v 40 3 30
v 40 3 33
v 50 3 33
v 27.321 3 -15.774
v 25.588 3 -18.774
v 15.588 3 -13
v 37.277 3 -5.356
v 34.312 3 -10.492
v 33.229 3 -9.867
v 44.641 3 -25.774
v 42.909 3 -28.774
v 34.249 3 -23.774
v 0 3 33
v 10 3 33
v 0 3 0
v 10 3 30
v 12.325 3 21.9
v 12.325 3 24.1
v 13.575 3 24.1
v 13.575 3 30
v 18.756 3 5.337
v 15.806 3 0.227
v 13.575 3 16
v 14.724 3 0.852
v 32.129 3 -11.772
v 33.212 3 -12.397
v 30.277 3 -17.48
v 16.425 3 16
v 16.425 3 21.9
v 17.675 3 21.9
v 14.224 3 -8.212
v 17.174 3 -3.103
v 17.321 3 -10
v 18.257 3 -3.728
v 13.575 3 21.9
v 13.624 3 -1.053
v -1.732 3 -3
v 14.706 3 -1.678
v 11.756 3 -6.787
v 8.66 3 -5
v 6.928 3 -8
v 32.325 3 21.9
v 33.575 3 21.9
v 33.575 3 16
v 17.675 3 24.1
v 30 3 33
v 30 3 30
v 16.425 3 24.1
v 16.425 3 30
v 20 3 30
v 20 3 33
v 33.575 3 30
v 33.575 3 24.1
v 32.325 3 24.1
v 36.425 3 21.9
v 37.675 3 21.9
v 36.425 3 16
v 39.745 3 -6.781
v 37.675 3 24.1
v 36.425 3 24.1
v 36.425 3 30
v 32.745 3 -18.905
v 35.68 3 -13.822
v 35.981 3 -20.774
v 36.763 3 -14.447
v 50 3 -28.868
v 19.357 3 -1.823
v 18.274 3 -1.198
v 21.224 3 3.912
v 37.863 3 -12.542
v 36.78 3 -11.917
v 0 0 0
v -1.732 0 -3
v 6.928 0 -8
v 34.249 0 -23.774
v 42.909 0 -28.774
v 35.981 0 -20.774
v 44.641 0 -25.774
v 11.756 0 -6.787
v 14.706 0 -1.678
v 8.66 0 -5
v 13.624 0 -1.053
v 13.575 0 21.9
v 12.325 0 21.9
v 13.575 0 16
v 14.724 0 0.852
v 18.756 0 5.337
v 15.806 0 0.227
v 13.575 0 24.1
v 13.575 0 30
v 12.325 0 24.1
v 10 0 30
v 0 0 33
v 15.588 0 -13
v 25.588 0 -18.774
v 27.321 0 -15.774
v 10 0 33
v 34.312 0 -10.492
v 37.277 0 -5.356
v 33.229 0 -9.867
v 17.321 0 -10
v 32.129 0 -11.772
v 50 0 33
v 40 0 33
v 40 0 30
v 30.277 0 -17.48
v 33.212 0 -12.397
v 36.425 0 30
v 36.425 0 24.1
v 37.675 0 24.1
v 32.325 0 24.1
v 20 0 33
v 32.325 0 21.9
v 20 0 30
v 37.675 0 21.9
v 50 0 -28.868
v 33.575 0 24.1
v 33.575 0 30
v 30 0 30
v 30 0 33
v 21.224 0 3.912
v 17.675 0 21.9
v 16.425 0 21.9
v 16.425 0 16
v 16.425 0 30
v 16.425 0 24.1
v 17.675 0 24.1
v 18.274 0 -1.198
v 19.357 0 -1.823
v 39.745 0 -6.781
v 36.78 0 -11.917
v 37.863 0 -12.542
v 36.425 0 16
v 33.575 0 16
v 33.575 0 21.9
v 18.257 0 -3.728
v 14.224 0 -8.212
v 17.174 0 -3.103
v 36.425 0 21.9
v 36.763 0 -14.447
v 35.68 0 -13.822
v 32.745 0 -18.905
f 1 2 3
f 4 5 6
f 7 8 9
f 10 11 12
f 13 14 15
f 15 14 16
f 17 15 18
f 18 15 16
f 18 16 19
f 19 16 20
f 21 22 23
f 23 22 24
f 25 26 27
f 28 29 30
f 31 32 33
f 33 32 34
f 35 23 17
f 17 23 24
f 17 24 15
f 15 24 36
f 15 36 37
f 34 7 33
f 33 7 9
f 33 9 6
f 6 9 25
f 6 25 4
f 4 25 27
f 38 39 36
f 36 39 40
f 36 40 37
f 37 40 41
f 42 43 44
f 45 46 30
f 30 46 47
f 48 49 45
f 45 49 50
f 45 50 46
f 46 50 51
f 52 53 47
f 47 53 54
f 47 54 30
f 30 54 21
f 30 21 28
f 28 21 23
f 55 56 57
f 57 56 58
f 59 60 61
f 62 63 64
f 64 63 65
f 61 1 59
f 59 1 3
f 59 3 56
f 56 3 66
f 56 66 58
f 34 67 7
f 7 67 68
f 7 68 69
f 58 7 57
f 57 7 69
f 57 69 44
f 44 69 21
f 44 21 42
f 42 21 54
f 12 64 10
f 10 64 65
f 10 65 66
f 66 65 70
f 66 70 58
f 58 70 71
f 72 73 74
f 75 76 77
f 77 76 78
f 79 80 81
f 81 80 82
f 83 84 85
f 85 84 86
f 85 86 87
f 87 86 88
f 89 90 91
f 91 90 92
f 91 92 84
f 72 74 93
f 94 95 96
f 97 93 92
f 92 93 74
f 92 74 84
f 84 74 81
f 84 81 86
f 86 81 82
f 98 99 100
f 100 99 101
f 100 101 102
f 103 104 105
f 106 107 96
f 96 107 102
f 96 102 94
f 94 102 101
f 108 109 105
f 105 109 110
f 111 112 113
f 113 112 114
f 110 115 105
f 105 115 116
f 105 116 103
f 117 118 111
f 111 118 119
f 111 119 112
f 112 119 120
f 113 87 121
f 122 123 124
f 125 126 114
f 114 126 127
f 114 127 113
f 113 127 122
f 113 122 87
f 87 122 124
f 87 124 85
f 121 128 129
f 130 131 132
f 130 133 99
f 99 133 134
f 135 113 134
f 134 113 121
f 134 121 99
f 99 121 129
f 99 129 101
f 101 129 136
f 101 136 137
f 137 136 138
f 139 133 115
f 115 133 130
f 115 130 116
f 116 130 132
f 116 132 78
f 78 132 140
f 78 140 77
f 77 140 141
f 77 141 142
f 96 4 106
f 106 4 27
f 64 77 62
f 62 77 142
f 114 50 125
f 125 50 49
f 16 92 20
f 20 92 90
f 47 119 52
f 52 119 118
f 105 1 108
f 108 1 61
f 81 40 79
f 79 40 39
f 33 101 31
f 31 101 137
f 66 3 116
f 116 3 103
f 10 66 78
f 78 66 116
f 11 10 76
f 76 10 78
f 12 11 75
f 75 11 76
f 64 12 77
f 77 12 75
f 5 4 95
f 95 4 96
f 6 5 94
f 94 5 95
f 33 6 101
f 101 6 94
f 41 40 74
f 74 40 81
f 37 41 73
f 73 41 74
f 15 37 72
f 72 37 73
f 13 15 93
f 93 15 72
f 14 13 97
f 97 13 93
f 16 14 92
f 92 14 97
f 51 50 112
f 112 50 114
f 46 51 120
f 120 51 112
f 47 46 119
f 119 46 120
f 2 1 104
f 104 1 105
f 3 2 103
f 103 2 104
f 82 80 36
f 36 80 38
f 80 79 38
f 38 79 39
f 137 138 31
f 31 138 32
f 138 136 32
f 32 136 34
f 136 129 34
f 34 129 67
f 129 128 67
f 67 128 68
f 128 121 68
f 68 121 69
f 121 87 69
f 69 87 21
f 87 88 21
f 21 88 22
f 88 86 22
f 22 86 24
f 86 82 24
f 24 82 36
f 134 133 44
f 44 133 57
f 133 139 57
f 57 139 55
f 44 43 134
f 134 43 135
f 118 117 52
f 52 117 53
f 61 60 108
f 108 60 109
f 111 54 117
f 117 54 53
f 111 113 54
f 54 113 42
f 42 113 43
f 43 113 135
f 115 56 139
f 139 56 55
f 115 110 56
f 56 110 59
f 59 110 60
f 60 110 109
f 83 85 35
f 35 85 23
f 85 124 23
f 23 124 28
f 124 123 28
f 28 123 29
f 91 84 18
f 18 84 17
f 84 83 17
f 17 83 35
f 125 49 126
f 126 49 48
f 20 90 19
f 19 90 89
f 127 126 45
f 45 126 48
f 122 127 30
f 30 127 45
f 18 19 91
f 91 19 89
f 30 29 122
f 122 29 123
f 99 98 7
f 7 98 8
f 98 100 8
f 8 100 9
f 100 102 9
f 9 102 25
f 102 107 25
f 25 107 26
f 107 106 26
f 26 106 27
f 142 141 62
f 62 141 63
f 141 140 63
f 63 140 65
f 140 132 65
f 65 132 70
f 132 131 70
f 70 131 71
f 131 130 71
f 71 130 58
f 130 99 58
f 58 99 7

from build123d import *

# Parameters (mm, degrees)
SKETCH1_W           = 50
SKETCH1_H           = 30
SKETCH1_W_2         = 10
SKETCH1_H_2         = 3
BOSS_EXTRUDE1_DEPTH = 3
CUT_EXTRUDE1_DEPTH  = 60.983331018


with BuildPart() as part:
    # Sketch1 → Boss-Extrude1 (new body)
    with BuildSketch(Plane(origin=(0, 0, 0), x_dir=(1, 0, 0), z_dir=(0, 1, 0))):
        Polygon((50, 0), (50, 28.867513459), (0, 0), align=None)
        Polygon((-1.732050808, 3), (0, 0), (8.660254038, 5), (6.92820323, 8), align=None)
        with Locations((25, -15)):
            Rectangle(SKETCH1_W, SKETCH1_H)
        with Locations((5, -31.5)):
            Rectangle(SKETCH1_W_2, SKETCH1_H_2)
        with Locations((25, -31.5)):
            Rectangle(SKETCH1_W_2, SKETCH1_H_2)
        with Locations((45, -31.5)):
            Rectangle(SKETCH1_W_2, SKETCH1_H_2)
        Polygon((15.588457268, 13), (17.320508076, 10), (27.320508076, 15.773502692), (25.588457268, 18.773502692), align=None)
        Polygon((35.980762114, 20.773502692), (44.641016151, 25.773502692), (42.908965344, 28.773502692), (34.248711306, 23.773502692), align=None)
    extrude(amount=BOSS_EXTRUDE1_DEPTH)

    # Sketch2 → Cut-Extrude1 (cut, through all)
    with BuildSketch(Plane(origin=(0, 3, 0), x_dir=(1, 0, 0), z_dir=(0, 1, 0))):
        Polygon((14.224467257, 8.2125), (11.756294856, 6.7875), (14.706294856, 1.677950118), (13.623763102, 1.052950118), (14.723763102, -0.852305771), (15.806294856, -0.227305771), (18.756294856, -5.336855653), (21.224467257, -3.911855653), (18.274467257, 1.197694229), (19.356999012, 1.822694229), (18.256999012, 3.727950118), (17.174467257, 3.102950118), align=None)
        Polygon((32.745265622, 18.905487922), (30.277093221, 17.480487922), (33.211895488, 12.397261285), (32.129363734, 11.772261285), (33.229363734, 9.867005396), (34.311895488, 10.492005396), (37.277093221, 5.356132269), (39.745265622, 6.781132269), (36.780067889, 11.917005396), (37.862599644, 12.542005396), (36.762599644, 14.447261285), (35.680067889, 13.822261285), align=None)
        Polygon((36.425, -16), (33.575, -16), (33.575, -21.9), (32.325, -21.9), (32.325, -24.1), (33.575, -24.1), (33.575, -30), (36.425, -30), (36.425, -24.1), (37.675, -24.1), (37.675, -21.9), (36.425, -21.9), align=None)
        Polygon((16.425, -16), (13.575, -16), (13.575, -21.9), (12.325, -21.9), (12.325, -24.1), (13.575, -24.1), (13.575, -30), (16.425, -30), (16.425, -24.1), (17.675, -24.1), (17.675, -21.9), (16.425, -21.9), align=None)
    extrude(amount=-CUT_EXTRUDE1_DEPTH, mode=Mode.SUBTRACT)


solid = part.part
